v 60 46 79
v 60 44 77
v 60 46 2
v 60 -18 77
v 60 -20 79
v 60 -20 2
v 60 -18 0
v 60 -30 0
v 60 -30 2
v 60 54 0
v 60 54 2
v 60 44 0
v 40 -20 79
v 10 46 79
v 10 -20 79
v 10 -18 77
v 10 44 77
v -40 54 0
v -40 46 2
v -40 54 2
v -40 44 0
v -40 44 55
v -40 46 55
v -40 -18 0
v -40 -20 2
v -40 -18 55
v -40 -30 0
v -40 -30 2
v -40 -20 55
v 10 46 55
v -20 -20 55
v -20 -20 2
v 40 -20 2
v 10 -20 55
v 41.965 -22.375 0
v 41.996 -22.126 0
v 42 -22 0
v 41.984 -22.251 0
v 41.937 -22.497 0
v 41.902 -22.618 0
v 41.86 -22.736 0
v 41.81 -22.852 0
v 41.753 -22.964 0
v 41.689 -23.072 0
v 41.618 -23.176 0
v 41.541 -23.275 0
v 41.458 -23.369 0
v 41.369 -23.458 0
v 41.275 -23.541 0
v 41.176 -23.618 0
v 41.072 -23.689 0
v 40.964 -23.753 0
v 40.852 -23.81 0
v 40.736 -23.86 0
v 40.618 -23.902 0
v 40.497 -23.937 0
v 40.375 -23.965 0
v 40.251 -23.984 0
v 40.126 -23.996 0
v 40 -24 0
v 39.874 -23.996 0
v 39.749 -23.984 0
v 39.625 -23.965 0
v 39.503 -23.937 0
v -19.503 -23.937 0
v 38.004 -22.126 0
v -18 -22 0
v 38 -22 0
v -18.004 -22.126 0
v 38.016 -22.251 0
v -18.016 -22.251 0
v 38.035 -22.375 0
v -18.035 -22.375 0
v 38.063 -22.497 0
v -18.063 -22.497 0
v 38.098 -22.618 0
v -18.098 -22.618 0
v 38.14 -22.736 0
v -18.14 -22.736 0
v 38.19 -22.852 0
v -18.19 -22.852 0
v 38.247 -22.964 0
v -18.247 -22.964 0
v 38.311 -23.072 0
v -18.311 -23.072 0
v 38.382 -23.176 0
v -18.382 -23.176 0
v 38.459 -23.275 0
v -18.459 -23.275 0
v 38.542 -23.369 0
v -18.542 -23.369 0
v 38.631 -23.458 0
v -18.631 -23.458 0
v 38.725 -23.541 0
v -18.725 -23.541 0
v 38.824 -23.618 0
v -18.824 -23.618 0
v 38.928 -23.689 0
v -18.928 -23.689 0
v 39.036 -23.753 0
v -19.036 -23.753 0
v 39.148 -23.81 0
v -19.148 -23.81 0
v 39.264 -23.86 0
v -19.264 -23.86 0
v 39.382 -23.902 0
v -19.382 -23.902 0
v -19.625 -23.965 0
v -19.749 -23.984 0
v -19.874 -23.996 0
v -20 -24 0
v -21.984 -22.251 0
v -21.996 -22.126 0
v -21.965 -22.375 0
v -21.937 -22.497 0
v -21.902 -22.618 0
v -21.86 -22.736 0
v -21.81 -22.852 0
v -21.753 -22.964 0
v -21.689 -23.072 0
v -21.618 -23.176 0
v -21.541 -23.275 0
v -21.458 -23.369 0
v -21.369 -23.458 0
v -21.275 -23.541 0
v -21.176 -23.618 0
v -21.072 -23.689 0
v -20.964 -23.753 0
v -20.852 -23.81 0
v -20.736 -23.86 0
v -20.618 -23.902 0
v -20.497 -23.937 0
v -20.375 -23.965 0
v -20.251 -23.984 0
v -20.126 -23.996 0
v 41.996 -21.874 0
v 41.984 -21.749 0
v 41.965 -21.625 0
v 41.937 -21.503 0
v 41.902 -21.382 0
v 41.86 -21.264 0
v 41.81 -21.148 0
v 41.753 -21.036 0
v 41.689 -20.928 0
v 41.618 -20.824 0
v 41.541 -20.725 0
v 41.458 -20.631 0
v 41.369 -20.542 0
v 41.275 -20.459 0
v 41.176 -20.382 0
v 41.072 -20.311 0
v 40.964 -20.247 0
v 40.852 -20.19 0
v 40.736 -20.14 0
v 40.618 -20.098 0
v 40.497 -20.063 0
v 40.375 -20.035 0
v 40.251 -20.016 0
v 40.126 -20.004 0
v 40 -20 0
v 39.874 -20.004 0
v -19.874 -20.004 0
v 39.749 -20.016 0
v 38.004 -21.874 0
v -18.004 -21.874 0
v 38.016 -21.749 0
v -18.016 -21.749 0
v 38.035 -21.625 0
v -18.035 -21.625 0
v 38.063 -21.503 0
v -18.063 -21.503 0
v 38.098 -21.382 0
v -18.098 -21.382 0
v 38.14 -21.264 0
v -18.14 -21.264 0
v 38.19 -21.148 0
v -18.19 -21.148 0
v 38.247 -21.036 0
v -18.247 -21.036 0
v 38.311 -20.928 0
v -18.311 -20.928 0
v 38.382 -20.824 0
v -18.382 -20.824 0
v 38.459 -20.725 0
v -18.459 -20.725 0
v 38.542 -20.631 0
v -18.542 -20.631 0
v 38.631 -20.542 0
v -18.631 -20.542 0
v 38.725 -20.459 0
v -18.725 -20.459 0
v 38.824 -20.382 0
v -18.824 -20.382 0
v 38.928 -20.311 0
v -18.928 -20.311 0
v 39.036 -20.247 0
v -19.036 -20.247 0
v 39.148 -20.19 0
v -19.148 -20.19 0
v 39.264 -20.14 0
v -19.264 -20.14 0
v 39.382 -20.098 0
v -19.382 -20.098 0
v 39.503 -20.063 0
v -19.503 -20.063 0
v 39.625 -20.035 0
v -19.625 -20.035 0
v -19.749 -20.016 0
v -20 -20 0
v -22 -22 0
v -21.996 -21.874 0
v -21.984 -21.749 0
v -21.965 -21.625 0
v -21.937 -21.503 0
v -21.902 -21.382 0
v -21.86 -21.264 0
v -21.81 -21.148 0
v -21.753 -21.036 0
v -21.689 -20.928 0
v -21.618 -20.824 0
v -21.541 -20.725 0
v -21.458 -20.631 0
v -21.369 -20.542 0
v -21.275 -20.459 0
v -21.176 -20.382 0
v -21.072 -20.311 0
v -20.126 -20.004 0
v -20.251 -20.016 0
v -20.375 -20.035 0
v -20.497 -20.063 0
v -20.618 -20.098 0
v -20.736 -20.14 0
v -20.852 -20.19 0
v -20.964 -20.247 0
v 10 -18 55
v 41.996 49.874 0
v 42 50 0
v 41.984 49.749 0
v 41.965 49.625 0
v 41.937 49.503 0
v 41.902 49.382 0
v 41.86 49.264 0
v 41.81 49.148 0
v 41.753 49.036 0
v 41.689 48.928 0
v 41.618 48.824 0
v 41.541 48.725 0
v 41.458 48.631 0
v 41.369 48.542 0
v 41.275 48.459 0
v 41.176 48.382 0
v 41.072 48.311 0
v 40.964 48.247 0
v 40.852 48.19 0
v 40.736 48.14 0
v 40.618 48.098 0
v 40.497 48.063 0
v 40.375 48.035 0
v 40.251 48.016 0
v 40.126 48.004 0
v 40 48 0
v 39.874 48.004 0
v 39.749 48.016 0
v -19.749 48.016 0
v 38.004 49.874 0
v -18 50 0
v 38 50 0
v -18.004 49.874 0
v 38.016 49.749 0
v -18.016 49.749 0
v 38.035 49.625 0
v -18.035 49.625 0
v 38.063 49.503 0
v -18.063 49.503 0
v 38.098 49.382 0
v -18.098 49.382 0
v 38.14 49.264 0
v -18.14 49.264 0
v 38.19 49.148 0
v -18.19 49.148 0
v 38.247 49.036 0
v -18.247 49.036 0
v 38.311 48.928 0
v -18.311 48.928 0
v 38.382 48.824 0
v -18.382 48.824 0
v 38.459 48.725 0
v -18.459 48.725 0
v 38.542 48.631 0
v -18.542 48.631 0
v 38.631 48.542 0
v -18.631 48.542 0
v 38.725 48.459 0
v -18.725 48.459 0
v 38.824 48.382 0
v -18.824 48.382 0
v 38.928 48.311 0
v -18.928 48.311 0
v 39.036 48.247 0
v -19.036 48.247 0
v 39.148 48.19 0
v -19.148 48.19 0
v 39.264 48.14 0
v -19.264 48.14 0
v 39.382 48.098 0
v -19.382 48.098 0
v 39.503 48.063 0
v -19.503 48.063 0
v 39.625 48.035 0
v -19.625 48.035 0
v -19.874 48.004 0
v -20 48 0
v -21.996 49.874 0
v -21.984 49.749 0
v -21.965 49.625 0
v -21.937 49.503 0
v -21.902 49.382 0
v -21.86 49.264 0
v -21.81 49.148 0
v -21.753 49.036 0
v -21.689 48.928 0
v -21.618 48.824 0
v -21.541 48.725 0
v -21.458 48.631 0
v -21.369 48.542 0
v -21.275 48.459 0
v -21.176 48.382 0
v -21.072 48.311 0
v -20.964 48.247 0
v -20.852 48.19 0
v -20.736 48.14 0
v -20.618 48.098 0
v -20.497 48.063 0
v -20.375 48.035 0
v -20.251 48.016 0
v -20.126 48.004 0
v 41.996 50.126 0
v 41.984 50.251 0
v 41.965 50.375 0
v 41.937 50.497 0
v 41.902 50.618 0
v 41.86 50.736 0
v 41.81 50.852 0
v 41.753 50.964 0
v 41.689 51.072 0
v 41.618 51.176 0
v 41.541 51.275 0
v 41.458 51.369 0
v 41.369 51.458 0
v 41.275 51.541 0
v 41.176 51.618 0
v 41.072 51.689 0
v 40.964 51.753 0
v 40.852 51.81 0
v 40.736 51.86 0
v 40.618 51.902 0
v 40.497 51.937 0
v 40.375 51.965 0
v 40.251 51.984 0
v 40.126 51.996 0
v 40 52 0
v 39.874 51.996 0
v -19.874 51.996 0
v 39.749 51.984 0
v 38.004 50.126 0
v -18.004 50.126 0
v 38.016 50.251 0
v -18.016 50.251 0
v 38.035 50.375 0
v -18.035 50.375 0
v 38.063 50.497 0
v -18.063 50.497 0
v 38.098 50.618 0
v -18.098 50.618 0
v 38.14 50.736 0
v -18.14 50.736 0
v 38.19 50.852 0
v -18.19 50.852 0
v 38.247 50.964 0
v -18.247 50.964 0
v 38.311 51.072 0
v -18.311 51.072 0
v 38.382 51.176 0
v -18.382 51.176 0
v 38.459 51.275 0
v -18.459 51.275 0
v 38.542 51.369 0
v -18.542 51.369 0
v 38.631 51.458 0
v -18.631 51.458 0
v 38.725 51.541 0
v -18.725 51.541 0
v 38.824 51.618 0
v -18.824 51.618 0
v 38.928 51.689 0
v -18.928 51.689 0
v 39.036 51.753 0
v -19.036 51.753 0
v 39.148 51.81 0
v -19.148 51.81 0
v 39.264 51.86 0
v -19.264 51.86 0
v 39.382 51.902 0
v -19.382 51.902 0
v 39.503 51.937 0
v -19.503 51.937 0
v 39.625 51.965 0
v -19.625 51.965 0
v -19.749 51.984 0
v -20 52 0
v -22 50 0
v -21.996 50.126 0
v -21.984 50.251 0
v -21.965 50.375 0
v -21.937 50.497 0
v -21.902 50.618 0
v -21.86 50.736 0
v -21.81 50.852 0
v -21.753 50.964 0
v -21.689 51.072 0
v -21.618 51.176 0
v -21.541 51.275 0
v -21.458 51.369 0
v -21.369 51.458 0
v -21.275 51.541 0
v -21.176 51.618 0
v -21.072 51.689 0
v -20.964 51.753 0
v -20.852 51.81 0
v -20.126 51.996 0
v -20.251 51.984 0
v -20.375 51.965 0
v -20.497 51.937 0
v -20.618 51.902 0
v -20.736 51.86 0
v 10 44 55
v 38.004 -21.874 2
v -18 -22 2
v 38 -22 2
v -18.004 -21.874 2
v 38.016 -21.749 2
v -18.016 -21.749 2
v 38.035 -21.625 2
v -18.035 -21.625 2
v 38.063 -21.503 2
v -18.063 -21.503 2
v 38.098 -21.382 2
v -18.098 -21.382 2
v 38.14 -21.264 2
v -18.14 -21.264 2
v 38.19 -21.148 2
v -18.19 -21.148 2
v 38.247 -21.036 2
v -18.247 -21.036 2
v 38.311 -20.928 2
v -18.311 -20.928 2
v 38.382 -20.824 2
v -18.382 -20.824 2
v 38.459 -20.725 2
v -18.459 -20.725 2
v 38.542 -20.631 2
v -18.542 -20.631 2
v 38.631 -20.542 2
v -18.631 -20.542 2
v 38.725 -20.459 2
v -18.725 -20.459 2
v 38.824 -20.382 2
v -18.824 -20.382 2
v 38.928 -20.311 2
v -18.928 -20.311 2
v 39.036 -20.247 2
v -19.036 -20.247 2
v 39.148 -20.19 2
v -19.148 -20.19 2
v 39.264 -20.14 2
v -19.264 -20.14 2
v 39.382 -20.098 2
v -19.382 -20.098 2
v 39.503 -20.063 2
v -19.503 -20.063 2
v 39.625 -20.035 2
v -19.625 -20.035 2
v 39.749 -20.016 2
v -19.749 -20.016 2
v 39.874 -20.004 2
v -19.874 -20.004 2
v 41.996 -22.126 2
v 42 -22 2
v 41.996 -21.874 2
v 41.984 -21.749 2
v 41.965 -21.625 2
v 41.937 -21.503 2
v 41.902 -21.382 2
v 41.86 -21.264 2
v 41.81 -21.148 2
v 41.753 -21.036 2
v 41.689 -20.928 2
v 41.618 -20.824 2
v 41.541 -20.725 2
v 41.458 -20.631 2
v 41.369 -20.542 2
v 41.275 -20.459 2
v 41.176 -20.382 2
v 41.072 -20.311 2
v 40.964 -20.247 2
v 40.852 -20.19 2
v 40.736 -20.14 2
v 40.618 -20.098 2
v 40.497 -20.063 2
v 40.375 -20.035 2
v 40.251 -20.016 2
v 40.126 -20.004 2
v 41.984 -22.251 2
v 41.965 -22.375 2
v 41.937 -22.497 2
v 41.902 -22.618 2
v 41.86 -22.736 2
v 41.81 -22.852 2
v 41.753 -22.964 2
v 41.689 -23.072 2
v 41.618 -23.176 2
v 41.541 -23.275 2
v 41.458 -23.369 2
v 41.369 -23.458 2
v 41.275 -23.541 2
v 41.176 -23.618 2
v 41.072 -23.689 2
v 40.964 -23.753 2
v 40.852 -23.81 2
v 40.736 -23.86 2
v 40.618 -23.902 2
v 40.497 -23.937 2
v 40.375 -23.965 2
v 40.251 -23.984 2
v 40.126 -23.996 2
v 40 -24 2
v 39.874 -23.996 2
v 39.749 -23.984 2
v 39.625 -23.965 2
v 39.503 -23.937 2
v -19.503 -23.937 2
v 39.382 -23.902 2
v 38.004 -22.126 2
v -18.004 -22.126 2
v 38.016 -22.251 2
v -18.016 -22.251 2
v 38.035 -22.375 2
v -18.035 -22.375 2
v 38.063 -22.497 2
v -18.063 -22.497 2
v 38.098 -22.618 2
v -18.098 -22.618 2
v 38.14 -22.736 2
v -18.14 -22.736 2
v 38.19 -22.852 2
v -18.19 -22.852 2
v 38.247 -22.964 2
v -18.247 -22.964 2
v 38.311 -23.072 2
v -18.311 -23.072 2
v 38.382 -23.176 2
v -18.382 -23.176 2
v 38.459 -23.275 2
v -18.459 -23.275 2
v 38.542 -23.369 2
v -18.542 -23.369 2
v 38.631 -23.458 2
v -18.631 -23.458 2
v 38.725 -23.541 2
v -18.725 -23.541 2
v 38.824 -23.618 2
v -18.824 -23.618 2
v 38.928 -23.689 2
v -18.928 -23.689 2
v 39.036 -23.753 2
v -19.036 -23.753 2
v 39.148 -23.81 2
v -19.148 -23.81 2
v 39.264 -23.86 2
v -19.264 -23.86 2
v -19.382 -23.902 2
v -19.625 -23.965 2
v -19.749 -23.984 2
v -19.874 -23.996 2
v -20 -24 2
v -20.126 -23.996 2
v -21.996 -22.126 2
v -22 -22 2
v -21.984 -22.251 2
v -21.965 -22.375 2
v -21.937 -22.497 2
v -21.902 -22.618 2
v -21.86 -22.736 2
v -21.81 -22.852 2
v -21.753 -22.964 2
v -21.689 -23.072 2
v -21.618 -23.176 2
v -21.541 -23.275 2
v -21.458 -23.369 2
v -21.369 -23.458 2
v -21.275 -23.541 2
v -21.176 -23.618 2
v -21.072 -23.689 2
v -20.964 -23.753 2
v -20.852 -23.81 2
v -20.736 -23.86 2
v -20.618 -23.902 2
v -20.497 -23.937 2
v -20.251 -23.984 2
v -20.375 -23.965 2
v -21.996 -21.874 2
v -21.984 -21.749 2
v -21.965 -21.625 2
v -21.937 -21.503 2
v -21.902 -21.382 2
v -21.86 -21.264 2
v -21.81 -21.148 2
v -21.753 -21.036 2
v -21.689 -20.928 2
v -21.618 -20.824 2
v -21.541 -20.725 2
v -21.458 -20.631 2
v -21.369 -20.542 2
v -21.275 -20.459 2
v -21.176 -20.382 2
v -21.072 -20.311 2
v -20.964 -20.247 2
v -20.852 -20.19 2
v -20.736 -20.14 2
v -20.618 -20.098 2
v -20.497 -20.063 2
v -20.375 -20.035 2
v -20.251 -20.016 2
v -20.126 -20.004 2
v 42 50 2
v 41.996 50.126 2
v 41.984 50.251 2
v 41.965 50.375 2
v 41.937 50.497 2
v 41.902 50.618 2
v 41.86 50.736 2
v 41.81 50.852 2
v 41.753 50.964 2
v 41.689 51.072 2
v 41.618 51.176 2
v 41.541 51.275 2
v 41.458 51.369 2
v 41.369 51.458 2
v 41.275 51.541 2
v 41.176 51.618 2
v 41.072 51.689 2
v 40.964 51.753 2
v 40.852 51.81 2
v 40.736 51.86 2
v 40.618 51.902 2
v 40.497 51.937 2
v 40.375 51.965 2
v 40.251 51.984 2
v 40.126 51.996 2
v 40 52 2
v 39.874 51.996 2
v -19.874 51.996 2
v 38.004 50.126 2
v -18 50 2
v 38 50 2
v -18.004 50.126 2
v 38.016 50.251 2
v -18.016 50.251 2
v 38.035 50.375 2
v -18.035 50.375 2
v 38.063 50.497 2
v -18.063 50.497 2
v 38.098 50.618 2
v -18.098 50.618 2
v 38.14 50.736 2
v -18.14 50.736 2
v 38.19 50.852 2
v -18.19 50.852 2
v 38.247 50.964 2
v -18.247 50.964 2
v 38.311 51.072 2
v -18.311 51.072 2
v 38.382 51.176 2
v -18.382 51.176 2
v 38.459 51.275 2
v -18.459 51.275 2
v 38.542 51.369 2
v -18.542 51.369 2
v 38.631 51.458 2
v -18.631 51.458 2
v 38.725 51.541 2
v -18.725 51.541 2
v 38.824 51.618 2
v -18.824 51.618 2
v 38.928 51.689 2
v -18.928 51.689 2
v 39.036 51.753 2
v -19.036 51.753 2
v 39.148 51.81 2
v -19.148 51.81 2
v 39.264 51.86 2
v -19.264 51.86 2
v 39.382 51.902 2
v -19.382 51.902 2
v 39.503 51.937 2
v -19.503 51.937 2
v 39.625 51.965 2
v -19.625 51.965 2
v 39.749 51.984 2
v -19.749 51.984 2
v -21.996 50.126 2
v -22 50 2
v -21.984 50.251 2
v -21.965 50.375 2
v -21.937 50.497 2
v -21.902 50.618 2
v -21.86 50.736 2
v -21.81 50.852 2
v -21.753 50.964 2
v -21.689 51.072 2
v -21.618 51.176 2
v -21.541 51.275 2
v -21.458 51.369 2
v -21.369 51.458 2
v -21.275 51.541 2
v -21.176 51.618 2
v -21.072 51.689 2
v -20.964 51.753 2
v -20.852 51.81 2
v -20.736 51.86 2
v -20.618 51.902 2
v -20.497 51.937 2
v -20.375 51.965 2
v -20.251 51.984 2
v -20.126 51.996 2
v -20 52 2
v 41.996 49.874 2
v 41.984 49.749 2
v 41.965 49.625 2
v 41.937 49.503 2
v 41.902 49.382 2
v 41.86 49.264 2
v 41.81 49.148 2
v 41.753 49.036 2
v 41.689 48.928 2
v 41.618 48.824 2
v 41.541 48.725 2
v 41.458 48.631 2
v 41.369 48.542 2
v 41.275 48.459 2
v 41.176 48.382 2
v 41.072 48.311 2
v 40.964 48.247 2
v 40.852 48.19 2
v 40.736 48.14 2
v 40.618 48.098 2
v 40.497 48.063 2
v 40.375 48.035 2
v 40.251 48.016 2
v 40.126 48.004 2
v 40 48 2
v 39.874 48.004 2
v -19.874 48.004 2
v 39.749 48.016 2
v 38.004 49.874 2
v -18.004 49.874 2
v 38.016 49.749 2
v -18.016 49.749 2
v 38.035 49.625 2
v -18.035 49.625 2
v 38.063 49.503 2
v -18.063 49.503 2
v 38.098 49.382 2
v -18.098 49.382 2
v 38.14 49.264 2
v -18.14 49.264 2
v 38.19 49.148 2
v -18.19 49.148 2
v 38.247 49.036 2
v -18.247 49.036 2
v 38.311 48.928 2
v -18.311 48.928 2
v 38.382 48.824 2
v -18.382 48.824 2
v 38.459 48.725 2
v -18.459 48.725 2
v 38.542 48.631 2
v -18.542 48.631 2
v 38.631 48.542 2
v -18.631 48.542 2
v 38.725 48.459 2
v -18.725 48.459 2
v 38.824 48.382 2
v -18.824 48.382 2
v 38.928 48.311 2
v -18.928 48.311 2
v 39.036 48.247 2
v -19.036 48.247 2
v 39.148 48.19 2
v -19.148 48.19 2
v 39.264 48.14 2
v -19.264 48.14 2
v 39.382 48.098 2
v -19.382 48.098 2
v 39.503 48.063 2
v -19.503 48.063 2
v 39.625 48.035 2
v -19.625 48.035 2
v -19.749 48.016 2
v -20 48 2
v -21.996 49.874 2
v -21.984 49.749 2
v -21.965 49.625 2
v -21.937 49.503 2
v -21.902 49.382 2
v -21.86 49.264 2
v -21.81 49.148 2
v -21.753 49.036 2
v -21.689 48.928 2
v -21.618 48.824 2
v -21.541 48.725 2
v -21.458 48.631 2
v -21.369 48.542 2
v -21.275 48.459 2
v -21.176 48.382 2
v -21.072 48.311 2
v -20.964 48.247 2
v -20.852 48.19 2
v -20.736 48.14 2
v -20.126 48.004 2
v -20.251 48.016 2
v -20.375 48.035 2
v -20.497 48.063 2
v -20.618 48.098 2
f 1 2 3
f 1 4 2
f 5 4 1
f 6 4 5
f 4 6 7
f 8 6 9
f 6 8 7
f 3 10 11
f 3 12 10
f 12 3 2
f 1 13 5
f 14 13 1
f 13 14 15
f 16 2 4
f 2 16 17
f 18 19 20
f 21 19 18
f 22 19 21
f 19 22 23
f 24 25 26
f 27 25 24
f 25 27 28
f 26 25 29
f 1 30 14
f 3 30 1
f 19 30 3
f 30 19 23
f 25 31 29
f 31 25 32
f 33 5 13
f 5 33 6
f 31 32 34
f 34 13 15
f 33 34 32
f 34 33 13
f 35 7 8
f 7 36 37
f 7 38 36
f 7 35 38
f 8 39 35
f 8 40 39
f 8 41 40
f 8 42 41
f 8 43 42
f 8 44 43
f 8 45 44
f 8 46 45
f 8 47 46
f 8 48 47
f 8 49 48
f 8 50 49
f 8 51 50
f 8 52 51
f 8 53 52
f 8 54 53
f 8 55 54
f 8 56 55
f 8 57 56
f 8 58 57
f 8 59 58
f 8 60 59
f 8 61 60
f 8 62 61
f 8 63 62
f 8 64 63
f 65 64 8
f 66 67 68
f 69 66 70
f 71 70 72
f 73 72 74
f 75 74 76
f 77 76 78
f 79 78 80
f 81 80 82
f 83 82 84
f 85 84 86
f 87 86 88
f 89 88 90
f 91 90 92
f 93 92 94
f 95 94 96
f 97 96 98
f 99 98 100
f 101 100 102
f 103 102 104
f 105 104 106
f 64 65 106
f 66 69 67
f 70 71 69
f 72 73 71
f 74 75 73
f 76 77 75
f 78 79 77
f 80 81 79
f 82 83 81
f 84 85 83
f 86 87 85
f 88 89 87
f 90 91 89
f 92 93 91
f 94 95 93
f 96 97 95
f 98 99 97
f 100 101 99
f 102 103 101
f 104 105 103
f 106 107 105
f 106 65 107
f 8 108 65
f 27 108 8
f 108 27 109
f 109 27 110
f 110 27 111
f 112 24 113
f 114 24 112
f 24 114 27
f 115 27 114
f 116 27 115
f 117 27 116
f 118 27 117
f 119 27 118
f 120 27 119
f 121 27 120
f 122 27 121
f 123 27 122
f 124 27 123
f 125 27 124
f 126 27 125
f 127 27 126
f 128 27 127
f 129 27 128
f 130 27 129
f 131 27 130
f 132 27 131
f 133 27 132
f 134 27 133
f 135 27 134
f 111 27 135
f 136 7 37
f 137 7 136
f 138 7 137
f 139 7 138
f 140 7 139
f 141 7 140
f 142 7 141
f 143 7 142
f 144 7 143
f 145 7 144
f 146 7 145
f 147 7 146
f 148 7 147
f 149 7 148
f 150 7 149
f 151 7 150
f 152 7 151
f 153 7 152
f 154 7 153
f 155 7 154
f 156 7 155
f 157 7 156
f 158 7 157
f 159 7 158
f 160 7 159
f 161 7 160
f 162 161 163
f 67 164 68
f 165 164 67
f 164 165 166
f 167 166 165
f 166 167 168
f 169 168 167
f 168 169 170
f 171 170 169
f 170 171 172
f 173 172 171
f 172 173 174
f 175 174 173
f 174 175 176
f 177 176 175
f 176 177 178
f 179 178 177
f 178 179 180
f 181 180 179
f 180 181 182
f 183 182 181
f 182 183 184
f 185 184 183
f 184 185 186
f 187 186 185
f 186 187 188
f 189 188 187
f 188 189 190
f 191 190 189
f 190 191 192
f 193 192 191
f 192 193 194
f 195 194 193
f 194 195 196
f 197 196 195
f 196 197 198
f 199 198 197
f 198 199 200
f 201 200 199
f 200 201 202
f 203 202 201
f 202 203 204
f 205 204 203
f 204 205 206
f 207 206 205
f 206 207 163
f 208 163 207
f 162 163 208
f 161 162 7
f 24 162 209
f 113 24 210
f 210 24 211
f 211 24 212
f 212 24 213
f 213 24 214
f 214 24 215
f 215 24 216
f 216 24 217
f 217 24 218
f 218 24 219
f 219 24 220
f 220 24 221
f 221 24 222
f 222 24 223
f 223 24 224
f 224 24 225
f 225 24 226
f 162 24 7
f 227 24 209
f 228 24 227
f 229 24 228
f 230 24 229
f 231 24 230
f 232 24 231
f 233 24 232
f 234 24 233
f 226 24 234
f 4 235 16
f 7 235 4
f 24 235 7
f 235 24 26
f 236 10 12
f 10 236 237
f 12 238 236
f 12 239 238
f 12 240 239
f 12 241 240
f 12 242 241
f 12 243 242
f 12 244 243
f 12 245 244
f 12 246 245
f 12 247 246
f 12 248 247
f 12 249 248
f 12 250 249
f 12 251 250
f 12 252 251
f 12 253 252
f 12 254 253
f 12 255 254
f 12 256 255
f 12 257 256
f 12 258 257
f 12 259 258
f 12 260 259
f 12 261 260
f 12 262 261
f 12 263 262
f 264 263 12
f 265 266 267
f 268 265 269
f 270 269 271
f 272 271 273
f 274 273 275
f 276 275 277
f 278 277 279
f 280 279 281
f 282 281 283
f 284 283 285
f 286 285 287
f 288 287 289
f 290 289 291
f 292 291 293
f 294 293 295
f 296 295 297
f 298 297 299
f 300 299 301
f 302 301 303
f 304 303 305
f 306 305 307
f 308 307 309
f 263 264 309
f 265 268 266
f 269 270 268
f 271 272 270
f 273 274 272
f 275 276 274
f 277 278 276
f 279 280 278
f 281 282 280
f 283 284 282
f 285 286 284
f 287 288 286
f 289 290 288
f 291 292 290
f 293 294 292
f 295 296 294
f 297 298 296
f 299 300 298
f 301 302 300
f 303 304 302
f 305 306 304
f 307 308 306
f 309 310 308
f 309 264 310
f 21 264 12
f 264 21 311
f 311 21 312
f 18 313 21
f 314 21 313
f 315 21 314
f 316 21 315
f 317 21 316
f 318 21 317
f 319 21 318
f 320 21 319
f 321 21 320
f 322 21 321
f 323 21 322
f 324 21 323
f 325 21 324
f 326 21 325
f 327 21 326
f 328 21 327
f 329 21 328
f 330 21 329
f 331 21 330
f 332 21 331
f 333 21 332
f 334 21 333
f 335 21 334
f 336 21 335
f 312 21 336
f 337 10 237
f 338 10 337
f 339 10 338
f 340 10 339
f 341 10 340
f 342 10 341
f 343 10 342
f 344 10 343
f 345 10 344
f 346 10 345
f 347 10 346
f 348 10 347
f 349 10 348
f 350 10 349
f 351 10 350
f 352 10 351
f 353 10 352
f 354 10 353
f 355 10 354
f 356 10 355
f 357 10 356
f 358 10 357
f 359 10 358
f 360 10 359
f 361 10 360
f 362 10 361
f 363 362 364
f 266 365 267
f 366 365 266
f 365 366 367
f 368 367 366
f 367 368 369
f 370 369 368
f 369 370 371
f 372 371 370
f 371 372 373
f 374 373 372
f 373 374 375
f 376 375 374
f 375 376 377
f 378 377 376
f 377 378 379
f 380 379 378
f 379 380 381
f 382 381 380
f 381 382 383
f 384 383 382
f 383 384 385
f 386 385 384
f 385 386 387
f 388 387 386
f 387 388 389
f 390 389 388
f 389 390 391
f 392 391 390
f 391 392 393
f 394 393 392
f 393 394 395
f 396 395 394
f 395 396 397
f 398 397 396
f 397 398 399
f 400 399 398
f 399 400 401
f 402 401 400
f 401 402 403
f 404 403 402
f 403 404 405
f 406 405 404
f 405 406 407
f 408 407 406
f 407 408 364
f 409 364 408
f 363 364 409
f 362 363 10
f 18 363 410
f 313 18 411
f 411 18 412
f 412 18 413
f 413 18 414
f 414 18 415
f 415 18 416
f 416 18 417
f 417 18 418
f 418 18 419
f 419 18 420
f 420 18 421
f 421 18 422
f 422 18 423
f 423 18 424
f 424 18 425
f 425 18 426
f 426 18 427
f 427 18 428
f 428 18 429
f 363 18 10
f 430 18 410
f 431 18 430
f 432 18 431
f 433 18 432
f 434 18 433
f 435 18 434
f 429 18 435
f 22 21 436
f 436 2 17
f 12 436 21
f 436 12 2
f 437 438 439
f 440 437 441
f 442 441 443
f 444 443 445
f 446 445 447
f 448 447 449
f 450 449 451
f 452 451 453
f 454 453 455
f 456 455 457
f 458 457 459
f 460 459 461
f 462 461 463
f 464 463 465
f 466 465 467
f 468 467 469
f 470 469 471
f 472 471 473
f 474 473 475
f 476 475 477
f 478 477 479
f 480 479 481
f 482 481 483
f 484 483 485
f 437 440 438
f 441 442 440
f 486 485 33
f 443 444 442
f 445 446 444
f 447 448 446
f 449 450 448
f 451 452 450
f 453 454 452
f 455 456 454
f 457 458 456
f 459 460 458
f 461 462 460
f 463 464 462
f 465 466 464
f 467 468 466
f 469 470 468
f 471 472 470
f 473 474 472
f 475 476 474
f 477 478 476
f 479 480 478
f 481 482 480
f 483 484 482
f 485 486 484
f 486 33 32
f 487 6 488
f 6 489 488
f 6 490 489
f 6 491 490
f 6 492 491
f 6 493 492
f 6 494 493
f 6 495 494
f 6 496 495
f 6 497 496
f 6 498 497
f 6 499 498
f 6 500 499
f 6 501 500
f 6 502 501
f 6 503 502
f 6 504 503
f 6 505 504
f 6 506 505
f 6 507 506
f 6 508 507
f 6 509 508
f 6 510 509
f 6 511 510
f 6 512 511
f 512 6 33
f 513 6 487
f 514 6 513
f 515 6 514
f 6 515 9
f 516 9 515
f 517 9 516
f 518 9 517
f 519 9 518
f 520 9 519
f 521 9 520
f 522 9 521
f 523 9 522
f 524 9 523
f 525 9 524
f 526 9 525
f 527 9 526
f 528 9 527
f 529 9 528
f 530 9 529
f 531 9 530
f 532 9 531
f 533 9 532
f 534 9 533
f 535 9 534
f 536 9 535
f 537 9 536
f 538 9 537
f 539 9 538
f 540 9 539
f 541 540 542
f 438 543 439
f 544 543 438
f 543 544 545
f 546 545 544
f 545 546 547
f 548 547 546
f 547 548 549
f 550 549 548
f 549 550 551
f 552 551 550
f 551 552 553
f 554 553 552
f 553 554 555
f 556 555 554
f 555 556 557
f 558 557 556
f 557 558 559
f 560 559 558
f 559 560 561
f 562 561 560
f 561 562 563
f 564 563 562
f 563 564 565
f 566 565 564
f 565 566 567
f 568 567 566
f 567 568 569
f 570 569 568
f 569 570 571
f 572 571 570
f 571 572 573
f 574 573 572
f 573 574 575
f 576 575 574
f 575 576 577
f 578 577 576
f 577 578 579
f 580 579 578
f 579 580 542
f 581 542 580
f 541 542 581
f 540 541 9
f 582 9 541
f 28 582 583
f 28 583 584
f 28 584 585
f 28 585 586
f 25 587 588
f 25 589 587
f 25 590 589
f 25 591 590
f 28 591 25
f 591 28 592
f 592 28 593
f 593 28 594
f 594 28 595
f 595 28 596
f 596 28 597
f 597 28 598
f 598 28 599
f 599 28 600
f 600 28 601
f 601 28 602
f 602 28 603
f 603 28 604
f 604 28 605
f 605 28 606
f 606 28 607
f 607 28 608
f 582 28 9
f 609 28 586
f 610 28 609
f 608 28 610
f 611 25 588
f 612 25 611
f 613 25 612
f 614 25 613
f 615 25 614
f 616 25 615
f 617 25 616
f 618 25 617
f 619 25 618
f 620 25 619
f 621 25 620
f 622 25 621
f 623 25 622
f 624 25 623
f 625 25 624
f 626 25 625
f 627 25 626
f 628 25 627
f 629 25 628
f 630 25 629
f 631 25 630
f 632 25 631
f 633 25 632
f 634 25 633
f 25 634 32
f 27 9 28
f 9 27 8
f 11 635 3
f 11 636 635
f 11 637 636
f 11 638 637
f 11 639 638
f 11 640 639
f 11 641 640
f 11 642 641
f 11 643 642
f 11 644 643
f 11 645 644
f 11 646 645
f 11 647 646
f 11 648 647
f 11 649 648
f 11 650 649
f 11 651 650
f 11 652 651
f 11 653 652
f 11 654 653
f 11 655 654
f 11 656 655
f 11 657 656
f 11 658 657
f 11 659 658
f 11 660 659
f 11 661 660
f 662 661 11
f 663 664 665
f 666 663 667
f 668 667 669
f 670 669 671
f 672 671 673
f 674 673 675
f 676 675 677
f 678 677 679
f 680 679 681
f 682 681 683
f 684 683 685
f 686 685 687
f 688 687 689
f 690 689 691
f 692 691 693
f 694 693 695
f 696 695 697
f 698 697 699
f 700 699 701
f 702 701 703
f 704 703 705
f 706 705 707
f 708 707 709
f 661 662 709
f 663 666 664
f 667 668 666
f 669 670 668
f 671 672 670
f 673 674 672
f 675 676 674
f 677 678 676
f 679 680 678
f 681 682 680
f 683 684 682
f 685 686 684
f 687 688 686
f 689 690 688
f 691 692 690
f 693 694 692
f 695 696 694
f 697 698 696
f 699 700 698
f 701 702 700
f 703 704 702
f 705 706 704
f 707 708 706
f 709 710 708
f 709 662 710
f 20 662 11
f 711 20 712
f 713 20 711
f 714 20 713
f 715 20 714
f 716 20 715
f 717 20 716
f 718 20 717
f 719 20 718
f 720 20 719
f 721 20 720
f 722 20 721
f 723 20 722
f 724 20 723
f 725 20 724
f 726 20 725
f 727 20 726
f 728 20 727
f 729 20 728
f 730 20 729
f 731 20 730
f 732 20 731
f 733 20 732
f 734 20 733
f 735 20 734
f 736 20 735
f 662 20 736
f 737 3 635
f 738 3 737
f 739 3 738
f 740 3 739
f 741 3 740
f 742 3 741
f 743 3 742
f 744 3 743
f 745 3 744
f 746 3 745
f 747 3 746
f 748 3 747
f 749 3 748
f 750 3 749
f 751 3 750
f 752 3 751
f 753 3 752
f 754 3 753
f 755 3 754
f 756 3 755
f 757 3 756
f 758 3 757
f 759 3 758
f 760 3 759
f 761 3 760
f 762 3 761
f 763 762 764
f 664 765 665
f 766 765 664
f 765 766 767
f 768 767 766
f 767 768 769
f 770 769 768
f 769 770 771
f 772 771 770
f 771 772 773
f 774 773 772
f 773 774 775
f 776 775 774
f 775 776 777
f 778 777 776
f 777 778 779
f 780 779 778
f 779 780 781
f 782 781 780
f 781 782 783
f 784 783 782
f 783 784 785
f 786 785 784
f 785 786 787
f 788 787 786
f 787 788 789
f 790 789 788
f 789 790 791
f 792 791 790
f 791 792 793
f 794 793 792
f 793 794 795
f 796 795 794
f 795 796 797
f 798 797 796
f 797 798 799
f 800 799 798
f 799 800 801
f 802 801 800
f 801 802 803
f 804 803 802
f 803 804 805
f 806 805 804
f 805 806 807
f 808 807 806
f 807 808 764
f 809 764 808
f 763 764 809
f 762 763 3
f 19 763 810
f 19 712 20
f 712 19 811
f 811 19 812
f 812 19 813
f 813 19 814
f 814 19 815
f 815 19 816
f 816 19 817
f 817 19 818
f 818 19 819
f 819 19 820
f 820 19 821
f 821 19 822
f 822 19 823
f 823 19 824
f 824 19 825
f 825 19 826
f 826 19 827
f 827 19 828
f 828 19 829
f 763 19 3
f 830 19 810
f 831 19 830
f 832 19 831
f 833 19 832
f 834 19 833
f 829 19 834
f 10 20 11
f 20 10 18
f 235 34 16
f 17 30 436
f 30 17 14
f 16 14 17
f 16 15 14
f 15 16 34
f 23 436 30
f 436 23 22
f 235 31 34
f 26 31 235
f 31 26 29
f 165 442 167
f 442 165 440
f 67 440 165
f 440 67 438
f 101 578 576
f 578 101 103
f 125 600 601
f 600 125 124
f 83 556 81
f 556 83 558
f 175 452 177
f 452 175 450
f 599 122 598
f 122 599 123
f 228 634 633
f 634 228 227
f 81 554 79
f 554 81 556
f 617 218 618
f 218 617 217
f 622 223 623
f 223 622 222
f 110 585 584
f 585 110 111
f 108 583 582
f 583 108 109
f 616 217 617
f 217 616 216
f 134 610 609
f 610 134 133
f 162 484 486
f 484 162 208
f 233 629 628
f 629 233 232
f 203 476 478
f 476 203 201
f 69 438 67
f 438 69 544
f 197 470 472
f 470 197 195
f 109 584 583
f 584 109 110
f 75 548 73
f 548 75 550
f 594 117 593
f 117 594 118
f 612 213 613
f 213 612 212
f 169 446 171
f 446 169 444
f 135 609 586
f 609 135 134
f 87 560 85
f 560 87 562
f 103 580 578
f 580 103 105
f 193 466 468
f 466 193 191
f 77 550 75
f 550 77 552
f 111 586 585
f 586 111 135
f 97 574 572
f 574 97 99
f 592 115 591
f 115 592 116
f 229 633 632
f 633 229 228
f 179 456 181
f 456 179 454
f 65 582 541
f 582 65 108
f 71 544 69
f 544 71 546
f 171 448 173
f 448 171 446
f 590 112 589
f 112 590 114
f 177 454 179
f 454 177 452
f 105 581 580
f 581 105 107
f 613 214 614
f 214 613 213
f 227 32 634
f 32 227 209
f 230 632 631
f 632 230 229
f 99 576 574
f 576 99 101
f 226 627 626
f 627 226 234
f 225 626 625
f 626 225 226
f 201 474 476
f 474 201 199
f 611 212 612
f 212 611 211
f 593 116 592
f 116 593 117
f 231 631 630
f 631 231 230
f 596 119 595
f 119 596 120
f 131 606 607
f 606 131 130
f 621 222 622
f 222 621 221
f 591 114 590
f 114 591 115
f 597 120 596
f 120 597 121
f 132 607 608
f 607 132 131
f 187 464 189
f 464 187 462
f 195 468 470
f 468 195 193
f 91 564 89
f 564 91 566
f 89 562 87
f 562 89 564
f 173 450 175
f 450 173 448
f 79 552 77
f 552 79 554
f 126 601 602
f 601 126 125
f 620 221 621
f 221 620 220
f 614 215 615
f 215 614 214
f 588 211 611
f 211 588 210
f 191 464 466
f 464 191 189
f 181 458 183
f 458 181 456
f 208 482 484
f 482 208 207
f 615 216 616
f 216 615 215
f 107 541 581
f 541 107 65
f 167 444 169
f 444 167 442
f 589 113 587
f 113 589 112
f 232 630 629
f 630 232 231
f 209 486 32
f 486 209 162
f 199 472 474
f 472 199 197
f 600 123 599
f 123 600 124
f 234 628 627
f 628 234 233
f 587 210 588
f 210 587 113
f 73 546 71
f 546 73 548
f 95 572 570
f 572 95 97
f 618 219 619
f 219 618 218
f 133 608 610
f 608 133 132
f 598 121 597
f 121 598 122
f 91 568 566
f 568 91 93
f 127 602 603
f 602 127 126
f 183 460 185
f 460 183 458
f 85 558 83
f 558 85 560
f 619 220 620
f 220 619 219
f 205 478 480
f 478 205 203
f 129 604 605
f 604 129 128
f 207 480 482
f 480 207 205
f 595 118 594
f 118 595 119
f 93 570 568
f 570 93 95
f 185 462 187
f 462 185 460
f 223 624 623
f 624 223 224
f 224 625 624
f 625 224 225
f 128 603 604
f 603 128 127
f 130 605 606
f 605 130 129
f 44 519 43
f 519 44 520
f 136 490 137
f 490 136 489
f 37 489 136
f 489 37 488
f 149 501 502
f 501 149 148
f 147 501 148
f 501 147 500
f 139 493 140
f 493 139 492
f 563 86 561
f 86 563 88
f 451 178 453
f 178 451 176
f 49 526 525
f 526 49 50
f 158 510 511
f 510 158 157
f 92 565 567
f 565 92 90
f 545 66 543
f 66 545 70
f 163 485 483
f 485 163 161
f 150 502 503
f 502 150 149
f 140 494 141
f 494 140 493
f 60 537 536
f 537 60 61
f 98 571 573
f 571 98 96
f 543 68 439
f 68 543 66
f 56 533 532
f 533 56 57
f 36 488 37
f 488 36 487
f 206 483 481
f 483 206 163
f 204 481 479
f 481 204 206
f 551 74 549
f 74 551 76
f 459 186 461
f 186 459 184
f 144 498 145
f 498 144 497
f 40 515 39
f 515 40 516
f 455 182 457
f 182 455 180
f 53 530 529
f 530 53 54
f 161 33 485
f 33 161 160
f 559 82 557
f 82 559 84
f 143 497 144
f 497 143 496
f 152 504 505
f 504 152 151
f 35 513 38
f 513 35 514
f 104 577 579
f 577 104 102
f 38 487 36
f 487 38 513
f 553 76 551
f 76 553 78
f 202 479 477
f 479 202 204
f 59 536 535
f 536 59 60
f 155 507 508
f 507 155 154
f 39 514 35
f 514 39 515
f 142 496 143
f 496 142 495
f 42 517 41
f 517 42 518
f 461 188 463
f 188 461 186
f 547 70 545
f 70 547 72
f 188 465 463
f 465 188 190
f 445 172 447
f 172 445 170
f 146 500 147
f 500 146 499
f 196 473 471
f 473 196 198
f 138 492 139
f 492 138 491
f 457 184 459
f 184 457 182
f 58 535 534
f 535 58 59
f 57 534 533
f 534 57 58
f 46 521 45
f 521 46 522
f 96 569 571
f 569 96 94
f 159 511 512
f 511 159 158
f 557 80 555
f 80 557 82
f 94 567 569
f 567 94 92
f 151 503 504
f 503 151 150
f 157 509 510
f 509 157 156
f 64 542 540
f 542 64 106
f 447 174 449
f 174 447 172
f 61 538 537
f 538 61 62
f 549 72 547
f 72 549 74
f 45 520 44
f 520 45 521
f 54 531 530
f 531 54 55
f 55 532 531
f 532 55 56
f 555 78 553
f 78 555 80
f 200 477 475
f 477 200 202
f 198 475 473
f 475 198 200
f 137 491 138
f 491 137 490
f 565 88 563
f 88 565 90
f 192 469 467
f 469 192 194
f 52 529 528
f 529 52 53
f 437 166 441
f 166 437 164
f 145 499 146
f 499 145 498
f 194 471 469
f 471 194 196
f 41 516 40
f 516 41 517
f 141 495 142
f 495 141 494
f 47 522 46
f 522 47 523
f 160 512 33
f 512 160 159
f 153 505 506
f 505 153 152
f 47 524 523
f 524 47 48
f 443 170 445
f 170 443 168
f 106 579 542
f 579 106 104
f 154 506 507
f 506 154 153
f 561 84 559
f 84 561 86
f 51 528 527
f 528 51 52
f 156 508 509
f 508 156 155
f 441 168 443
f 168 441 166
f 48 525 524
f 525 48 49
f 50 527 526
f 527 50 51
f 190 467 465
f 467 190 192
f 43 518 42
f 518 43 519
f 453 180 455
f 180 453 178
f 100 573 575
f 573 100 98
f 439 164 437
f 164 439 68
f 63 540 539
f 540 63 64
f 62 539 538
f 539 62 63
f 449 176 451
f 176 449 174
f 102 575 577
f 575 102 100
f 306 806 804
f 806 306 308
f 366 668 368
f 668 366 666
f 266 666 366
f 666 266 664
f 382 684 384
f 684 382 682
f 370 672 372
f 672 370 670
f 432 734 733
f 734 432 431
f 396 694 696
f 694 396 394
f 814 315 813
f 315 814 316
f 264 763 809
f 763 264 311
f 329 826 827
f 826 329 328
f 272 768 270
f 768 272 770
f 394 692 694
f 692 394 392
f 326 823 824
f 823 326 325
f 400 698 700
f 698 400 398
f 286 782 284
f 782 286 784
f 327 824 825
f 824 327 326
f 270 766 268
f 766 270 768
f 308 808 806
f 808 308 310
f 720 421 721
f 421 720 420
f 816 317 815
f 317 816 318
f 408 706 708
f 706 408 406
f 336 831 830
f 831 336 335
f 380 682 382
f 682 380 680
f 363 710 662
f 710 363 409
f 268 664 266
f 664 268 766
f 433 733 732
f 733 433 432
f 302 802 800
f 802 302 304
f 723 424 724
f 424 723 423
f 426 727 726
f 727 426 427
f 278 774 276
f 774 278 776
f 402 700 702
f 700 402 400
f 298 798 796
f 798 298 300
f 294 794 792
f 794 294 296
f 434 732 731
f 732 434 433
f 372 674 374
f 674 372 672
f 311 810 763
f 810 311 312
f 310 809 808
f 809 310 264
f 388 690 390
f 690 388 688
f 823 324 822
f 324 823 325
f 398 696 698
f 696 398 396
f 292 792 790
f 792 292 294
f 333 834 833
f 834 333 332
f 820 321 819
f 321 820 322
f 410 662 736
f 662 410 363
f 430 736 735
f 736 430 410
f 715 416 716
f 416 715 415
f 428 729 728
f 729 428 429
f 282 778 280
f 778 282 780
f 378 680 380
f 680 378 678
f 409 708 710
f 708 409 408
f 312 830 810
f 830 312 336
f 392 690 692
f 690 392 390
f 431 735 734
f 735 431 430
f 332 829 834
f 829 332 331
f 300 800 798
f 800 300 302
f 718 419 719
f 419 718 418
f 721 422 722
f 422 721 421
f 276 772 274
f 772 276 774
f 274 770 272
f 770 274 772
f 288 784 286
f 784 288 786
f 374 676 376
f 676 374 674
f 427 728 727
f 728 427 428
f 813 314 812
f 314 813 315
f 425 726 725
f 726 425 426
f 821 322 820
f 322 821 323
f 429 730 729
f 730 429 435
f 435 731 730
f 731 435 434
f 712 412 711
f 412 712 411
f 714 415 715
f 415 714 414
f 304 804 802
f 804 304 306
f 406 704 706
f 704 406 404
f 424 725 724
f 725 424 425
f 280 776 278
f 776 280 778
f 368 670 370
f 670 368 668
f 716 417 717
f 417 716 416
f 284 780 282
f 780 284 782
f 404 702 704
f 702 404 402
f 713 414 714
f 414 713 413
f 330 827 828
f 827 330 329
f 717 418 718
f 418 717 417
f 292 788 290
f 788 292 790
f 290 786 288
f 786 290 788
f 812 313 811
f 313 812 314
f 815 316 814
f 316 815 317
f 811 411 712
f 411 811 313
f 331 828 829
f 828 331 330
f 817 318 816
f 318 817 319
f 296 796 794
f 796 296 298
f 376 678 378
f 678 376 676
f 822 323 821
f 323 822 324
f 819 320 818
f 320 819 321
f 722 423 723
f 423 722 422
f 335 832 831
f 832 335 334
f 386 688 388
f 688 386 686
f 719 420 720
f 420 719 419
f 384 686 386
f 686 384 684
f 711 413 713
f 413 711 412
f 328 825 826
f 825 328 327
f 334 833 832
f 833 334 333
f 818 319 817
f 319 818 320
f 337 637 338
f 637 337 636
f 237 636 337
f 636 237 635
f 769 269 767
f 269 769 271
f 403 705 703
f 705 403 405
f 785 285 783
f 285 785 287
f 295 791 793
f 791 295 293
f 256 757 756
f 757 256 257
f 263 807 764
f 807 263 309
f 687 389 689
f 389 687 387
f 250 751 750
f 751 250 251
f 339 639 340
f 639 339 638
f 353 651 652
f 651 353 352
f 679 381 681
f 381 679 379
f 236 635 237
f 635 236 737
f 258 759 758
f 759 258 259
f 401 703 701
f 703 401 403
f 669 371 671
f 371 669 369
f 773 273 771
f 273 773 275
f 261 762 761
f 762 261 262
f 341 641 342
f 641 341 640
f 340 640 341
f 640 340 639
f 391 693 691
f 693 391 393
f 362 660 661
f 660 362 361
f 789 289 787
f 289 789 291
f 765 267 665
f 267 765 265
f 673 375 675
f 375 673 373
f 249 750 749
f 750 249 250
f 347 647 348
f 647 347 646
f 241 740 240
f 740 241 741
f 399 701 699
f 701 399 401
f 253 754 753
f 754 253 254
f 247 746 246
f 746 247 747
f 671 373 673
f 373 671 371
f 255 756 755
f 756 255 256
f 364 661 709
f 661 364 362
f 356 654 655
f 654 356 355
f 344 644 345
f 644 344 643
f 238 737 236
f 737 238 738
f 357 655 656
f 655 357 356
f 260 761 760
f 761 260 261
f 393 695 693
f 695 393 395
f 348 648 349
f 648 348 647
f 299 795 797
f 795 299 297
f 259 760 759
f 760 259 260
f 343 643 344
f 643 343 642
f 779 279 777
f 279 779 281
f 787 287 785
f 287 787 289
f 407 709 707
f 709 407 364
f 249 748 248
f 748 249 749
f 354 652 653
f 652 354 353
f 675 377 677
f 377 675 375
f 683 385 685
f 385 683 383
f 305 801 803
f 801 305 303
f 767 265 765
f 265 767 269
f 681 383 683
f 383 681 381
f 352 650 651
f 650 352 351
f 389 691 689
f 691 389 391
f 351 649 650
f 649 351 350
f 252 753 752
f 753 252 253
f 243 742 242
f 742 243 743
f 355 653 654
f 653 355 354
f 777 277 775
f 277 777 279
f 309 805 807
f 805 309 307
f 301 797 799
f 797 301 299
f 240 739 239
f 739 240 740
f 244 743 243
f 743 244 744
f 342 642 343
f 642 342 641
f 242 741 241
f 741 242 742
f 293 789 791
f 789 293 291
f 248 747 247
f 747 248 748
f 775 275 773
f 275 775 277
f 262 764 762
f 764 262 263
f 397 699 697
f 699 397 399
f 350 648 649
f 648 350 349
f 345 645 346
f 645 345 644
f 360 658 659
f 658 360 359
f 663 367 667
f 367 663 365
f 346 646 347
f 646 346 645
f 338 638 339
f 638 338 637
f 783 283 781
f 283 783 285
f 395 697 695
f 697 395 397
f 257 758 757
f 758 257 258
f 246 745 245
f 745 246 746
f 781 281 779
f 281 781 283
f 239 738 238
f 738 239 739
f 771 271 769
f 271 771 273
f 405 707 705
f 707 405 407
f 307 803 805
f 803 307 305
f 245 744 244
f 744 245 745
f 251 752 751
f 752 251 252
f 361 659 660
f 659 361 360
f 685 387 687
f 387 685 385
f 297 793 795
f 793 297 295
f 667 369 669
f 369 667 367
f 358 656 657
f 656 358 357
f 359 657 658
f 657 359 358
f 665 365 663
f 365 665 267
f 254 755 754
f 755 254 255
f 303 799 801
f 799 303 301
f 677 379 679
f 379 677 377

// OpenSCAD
module pepernoten_inlaad() {
difference() {
union() {




    translate([-40, -20, 77])
        cube([100, 26+40, 2]);
    translate([-40, -20, 0])
        cube([100, 2, 77]);
    translate([-40, 44, 0])
        cube([100, 2, 77]);
    translate([-40, -30, 0])
        cube([100, 10, 2]);
    translate([-40, 44, 0])
        cube([100, 10, 2]);

}
    translate([-90, -50, 55])
        cube([100, 200, 30]);


    translate([-20,-22,-1]){
        rotate([0,0,0]){
            cylinder(h=500, r=2, $fn=100, center=false);
        }
    }
    translate([40,-22,-1]){
        rotate([0,0,0]){
            cylinder(h=500, r=2, $fn=100, center=false);
        }
    }


    translate([-20,50,-1]){
        rotate([0,0,0]){
            cylinder(h=500, r=2, $fn=100, center=false);
        }
    }
    translate([40,50,-1]){
        rotate([0,0,0]){
            cylinder(h=500, r=2, $fn=100, center=false);
        }
    }





}
}

pepernoten_inlaad();
